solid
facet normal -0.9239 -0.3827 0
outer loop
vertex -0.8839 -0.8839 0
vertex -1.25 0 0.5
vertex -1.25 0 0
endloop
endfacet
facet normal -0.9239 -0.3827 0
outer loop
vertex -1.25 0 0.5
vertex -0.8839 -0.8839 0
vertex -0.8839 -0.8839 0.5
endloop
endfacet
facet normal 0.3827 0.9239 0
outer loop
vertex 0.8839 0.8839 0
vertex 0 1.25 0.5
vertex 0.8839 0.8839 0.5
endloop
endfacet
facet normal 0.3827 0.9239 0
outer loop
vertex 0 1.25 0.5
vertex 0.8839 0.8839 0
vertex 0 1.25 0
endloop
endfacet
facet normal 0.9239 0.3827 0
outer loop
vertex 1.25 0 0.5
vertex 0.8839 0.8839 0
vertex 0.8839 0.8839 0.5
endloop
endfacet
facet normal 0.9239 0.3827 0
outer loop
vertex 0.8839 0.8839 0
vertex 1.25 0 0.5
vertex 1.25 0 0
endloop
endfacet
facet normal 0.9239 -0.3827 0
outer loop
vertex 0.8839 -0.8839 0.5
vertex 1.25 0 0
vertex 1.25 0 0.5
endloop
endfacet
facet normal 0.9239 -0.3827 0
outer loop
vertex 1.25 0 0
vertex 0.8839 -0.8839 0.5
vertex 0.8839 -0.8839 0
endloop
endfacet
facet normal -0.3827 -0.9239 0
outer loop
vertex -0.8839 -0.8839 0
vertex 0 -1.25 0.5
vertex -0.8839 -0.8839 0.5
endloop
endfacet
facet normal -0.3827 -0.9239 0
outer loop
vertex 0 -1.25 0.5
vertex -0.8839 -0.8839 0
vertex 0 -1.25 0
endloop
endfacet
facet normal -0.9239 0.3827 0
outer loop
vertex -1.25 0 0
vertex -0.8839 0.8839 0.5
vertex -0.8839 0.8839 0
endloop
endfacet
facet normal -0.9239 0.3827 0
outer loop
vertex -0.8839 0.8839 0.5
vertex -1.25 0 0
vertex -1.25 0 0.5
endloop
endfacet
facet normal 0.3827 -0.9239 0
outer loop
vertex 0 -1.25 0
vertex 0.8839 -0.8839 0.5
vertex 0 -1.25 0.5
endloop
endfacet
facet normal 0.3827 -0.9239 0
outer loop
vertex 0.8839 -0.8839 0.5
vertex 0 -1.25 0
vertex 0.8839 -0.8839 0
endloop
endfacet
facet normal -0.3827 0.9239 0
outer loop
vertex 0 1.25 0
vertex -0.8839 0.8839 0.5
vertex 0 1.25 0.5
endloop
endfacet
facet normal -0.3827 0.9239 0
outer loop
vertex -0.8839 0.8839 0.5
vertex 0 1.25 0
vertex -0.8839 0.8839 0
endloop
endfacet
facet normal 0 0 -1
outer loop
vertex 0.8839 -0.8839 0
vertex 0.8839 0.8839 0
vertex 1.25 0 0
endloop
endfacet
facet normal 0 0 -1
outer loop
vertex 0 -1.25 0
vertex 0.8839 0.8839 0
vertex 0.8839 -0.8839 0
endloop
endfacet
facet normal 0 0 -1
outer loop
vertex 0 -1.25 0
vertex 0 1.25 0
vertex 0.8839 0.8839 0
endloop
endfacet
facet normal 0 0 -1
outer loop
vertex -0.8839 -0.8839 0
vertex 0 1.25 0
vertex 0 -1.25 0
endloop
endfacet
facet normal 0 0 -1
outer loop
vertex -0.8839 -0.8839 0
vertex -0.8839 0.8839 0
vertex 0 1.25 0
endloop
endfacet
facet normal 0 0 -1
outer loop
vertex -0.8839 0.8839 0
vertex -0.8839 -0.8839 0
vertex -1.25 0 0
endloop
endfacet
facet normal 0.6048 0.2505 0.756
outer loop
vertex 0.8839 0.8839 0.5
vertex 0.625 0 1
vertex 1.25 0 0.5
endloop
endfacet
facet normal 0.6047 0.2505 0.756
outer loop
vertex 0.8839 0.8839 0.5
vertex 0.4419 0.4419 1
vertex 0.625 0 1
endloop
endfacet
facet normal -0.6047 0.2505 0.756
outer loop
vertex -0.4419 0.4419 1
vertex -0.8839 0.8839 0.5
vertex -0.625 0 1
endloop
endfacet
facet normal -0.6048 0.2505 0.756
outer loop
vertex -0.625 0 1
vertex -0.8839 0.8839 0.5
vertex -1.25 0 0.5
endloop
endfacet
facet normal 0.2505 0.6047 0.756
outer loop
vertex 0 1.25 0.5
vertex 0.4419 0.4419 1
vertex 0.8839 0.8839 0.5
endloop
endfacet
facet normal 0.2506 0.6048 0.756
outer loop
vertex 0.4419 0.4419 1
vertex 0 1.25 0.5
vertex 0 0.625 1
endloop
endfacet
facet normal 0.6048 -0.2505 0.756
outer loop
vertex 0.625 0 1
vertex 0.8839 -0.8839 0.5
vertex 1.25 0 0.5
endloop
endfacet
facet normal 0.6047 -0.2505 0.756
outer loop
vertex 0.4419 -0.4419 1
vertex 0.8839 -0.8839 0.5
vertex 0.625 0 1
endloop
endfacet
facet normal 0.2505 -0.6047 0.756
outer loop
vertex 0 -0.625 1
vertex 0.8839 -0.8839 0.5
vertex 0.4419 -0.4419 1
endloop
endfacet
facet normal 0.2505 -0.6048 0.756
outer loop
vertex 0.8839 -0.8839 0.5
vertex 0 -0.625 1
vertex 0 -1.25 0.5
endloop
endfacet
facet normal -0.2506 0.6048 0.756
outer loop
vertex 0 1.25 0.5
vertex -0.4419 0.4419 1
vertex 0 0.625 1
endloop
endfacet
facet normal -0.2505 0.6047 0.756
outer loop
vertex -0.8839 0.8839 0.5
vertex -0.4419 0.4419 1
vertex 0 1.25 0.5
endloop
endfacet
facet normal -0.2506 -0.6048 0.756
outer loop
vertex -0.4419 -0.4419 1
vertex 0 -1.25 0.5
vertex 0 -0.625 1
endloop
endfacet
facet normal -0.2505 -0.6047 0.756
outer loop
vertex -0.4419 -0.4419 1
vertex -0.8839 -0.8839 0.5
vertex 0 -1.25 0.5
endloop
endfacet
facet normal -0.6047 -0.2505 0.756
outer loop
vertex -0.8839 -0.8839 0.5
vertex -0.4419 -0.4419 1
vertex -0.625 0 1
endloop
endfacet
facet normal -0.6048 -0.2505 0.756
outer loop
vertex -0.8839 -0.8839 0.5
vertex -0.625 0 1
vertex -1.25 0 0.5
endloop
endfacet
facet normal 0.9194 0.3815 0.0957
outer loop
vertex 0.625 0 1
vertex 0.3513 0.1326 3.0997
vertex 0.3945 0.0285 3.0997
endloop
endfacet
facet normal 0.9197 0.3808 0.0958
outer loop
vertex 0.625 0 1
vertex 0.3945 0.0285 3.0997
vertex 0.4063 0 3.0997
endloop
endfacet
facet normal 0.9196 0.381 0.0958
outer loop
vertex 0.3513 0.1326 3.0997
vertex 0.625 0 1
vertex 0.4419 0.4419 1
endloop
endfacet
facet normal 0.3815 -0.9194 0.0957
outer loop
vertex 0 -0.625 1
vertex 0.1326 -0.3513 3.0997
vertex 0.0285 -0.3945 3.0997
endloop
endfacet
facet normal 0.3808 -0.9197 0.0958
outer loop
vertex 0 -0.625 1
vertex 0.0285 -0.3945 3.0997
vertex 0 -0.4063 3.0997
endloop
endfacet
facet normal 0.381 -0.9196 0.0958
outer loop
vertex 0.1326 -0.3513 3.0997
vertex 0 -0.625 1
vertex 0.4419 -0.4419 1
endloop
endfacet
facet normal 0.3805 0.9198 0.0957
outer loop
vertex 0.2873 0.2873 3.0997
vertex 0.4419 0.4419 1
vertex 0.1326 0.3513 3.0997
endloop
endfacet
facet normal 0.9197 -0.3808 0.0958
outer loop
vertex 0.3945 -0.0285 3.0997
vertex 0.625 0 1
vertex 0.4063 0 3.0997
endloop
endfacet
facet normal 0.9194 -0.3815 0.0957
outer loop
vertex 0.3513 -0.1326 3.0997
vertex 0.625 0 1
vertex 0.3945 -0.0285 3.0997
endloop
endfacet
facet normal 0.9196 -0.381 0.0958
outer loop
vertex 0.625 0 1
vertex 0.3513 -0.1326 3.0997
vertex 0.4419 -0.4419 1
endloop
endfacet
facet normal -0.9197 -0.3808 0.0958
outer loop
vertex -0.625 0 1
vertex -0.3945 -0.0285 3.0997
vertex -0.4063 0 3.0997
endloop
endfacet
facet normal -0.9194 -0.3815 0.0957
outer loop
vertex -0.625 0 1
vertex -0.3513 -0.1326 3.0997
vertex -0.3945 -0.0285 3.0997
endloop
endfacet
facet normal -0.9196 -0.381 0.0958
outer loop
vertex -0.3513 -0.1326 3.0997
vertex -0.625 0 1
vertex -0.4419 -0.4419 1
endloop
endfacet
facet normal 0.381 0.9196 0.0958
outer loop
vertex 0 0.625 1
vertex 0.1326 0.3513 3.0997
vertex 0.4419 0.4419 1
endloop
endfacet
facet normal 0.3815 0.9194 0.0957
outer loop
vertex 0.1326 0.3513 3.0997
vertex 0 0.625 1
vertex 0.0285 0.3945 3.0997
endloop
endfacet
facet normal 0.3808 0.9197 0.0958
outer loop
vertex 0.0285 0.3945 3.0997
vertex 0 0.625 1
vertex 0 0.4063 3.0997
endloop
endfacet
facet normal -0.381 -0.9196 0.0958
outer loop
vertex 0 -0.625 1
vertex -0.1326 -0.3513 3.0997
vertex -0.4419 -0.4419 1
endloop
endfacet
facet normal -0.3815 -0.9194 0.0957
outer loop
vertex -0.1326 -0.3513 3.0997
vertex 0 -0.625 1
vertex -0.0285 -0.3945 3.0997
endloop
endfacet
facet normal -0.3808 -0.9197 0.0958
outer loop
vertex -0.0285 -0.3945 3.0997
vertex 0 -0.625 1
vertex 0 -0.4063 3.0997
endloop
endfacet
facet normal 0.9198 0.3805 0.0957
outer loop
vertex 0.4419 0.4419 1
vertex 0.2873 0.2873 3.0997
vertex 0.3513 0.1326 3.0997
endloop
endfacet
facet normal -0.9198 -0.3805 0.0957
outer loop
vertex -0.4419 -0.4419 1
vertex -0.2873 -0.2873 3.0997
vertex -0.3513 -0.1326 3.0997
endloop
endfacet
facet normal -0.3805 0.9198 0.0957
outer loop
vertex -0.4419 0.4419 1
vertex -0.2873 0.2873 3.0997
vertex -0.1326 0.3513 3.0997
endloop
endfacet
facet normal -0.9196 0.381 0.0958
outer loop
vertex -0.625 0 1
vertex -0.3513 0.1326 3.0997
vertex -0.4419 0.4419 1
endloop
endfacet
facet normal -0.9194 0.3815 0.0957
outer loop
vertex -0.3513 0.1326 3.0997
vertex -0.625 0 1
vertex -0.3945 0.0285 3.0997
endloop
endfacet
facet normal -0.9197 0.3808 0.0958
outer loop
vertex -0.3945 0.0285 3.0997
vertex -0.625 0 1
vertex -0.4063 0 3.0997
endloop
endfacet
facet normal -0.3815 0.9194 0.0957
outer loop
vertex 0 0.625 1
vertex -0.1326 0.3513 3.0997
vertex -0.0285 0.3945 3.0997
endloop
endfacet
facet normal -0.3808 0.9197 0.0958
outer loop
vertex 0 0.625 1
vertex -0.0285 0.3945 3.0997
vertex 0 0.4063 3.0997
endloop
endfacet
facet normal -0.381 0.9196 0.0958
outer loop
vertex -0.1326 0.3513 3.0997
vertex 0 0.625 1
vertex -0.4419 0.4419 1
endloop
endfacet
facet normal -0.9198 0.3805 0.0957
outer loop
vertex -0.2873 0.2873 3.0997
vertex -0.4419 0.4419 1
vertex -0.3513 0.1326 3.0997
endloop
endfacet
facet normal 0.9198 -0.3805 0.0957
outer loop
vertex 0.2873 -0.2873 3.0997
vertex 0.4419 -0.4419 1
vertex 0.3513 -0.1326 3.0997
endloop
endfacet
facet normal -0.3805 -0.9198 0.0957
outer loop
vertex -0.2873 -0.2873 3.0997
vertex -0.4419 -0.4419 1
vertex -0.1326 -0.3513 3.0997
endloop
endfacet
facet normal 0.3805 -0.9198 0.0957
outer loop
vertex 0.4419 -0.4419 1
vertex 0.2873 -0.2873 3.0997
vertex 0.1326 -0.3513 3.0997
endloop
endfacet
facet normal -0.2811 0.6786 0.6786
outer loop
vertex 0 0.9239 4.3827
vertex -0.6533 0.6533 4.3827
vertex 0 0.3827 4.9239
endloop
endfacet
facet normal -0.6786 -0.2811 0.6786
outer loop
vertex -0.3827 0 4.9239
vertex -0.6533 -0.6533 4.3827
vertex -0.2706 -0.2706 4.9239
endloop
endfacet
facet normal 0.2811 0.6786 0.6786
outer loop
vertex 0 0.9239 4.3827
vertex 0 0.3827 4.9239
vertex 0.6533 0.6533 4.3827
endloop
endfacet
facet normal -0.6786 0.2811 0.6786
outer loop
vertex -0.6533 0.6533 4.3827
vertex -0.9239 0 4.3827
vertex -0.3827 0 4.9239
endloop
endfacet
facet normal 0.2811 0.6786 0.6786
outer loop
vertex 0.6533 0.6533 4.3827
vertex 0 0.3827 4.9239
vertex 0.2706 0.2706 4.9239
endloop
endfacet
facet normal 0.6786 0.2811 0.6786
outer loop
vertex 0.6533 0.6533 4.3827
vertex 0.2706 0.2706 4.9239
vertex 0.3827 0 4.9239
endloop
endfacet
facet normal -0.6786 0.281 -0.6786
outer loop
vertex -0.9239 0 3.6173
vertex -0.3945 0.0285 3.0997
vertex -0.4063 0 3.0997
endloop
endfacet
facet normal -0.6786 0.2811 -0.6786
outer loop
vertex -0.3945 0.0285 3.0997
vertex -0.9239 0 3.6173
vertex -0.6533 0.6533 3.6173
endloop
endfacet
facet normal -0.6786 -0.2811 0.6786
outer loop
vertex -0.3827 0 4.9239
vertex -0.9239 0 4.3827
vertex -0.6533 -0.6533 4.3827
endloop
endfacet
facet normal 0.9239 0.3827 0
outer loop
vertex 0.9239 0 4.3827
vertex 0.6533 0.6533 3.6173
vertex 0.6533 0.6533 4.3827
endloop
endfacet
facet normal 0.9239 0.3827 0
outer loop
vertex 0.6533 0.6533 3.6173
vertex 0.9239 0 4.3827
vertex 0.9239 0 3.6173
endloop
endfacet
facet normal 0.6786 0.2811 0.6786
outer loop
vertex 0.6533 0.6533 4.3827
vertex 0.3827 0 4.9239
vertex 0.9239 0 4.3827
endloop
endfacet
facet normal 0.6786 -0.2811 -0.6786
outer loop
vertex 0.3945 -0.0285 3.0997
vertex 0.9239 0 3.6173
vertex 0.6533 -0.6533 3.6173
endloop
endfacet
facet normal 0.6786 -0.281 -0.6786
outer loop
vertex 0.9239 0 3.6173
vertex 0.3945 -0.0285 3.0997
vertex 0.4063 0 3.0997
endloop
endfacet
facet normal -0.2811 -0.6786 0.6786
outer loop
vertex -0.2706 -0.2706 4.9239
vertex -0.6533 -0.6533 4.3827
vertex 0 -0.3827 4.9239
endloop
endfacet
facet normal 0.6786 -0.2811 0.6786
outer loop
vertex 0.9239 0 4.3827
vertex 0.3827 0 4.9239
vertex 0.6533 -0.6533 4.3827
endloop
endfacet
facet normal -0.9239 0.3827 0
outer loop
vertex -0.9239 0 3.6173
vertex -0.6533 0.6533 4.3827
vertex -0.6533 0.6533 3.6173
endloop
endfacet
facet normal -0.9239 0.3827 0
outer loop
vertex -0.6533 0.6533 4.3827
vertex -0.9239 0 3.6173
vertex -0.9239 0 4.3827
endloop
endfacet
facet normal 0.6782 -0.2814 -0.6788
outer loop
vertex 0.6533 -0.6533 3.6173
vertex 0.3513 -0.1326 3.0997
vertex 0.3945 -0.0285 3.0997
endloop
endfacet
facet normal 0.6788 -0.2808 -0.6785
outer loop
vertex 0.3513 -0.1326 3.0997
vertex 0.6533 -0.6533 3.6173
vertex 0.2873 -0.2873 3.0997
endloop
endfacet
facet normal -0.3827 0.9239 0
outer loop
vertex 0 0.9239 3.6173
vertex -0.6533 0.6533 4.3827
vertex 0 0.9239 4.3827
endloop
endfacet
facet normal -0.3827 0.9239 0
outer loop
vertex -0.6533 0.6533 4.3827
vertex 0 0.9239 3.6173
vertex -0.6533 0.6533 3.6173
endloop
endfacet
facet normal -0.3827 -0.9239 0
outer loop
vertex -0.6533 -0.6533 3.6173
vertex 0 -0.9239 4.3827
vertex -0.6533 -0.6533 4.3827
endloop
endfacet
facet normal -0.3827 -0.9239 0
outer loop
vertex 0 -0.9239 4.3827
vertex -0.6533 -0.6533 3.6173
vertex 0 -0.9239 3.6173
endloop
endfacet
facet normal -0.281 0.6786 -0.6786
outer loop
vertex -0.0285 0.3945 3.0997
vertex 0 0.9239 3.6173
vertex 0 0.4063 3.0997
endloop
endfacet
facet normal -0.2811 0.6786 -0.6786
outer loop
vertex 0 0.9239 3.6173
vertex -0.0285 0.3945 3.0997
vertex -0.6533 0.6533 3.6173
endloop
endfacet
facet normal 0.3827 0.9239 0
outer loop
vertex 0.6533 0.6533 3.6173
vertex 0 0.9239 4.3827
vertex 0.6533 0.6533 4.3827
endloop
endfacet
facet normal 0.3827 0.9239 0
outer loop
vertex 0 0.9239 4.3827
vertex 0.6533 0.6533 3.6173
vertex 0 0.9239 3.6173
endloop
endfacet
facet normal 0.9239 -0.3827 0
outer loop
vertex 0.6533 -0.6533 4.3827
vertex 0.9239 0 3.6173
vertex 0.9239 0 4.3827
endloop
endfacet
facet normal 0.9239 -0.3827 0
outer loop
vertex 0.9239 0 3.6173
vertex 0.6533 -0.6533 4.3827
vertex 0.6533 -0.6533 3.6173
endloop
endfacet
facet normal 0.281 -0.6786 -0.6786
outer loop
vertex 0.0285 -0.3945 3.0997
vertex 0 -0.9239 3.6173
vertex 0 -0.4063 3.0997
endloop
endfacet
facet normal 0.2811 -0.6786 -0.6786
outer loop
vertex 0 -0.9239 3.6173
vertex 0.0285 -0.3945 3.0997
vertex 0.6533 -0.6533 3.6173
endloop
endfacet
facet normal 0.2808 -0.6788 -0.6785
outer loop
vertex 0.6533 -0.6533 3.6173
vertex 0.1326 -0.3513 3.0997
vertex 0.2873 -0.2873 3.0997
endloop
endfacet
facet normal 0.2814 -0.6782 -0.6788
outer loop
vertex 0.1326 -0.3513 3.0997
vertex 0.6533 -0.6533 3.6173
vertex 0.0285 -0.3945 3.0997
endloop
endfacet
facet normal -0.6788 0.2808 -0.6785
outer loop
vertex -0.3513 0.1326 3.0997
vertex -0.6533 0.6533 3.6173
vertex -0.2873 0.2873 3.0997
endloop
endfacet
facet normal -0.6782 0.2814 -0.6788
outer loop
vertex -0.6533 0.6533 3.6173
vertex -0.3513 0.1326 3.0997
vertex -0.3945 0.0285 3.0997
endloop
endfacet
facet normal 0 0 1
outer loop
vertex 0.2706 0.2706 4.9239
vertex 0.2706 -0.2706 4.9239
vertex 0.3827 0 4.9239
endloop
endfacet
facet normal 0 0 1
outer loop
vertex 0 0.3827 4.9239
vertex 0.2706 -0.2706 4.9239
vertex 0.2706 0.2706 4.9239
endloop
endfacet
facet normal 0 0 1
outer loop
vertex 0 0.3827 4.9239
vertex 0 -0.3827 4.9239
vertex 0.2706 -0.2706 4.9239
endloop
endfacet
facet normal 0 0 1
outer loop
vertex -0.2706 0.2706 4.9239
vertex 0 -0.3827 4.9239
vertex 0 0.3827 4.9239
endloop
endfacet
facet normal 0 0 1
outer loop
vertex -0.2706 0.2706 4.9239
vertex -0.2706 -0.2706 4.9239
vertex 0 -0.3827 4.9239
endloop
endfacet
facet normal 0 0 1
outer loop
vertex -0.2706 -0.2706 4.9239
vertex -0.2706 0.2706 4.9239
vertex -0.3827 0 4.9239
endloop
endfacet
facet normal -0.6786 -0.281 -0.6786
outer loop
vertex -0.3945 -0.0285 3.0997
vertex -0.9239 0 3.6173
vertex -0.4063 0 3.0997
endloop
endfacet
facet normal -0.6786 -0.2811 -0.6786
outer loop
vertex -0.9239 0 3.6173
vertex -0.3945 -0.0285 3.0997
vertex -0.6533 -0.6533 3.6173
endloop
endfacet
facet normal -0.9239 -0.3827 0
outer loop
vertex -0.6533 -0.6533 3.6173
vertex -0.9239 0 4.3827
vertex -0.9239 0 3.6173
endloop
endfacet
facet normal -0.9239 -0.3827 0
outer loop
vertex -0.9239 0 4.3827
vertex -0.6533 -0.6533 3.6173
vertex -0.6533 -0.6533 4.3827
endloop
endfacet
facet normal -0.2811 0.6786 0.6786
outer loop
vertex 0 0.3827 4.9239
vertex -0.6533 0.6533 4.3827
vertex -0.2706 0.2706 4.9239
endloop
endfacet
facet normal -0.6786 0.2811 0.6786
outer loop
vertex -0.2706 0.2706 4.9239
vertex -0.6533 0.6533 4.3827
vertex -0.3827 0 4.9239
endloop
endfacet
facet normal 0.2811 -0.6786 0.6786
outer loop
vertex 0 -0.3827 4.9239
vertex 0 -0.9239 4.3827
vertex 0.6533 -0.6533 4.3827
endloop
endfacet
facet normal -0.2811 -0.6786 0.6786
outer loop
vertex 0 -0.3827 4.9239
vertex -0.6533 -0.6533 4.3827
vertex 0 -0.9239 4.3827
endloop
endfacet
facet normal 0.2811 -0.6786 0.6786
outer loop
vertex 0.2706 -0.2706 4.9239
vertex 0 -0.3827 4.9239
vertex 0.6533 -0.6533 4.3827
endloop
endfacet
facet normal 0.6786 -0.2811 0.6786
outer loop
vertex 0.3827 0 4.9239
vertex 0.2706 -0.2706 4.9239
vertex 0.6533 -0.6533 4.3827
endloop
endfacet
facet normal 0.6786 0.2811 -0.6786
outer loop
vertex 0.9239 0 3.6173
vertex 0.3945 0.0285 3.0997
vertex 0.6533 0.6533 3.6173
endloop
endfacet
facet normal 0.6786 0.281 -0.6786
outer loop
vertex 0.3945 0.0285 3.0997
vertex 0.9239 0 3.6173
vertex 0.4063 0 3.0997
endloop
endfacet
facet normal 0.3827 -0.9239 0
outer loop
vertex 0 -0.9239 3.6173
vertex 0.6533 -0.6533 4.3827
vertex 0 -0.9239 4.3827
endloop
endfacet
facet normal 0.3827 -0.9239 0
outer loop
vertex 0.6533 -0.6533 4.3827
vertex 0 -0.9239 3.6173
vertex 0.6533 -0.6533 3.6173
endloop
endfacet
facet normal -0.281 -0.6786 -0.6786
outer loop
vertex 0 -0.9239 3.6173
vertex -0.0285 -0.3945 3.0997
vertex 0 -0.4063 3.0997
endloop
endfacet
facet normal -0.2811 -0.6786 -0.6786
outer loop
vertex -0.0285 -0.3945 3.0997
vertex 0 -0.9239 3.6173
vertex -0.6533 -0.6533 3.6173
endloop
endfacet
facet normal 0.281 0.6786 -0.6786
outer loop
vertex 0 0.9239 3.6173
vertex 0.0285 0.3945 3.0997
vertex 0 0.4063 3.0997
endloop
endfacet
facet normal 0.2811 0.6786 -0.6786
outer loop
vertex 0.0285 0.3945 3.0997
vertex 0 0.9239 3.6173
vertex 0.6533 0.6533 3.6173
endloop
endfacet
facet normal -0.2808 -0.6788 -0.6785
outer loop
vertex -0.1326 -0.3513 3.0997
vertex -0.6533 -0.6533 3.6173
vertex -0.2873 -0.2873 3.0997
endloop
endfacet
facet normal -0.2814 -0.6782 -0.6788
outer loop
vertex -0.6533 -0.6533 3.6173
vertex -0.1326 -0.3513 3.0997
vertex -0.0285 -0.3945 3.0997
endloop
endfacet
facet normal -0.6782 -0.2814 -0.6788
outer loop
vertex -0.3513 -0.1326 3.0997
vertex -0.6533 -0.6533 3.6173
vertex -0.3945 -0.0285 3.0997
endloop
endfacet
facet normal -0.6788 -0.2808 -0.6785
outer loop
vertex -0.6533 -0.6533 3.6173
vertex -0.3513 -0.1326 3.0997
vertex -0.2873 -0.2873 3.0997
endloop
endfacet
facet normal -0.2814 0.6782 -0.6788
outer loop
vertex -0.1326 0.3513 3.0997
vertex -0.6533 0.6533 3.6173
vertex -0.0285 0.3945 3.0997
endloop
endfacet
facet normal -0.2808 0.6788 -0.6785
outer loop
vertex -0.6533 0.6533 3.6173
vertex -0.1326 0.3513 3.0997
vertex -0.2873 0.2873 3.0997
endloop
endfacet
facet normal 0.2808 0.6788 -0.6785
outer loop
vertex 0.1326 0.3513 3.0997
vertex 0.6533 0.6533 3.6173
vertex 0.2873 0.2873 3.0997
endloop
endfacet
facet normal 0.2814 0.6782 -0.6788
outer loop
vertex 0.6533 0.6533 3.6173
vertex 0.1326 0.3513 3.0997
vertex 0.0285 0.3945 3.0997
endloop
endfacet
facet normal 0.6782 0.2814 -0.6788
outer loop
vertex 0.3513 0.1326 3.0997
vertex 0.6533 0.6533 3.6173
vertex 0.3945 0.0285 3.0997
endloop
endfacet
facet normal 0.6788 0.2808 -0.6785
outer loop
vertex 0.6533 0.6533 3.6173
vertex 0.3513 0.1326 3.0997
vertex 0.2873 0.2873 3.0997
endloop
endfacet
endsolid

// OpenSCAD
// FIDE Standards have some flexibility
// https://www.fide.com/FIDE/handbook/Standards_of_Chess_Equipment_and_tournament_venue.pdf
// FIDE Handbook C.02.2.2 Height,weight,proportions
// 	- King – 9.5 cm, 
// 	- Queen – 8.5 cm, 
// 	- Bishop – 7 cm, 
// 	- Knight – 6 cm, 
// 	- Rook – 5.5 cm and 
// 	- Pawn – 5 cm. 
// 	- The diameter of the piece's base should measure 40- 50% of its height.
// 	- These dimensions may differ up to 10% from the above recommendation,
// 		- but the order (e.g. King is higher than Queen etc.) must be kept.
// We are going to transgress C.02.2.3
// FIDE Handbook C.02.3.2 Size of the square and the board
// 	- The side of the square should measure 5 to 6 cm. 
// 	- Referring to 2.2 the side of a square should be at least twice the diameter of a pawn’s base (it means four paws on one square).

$fn = 8;
total_height = 5;
base_diameter = total_height / 2;
base_radius = base_diameter / 2;
base_height = 1;
stem_radius = base_radius / 4;
stem_base_radius = base_radius / 2;
head_radius = 1;
stem_height = total_height - base_height - head_radius;

cylinder(base_height/2, base_radius, base_radius);
translate([0, 0, base_height/2]) 
	cylinder(base_height, base_radius, 0);
translate([0, 0, base_height])
	cylinder(stem_height, stem_base_radius, stem_radius);
translate([0, 0, 4])
	sphere(head_radius);
